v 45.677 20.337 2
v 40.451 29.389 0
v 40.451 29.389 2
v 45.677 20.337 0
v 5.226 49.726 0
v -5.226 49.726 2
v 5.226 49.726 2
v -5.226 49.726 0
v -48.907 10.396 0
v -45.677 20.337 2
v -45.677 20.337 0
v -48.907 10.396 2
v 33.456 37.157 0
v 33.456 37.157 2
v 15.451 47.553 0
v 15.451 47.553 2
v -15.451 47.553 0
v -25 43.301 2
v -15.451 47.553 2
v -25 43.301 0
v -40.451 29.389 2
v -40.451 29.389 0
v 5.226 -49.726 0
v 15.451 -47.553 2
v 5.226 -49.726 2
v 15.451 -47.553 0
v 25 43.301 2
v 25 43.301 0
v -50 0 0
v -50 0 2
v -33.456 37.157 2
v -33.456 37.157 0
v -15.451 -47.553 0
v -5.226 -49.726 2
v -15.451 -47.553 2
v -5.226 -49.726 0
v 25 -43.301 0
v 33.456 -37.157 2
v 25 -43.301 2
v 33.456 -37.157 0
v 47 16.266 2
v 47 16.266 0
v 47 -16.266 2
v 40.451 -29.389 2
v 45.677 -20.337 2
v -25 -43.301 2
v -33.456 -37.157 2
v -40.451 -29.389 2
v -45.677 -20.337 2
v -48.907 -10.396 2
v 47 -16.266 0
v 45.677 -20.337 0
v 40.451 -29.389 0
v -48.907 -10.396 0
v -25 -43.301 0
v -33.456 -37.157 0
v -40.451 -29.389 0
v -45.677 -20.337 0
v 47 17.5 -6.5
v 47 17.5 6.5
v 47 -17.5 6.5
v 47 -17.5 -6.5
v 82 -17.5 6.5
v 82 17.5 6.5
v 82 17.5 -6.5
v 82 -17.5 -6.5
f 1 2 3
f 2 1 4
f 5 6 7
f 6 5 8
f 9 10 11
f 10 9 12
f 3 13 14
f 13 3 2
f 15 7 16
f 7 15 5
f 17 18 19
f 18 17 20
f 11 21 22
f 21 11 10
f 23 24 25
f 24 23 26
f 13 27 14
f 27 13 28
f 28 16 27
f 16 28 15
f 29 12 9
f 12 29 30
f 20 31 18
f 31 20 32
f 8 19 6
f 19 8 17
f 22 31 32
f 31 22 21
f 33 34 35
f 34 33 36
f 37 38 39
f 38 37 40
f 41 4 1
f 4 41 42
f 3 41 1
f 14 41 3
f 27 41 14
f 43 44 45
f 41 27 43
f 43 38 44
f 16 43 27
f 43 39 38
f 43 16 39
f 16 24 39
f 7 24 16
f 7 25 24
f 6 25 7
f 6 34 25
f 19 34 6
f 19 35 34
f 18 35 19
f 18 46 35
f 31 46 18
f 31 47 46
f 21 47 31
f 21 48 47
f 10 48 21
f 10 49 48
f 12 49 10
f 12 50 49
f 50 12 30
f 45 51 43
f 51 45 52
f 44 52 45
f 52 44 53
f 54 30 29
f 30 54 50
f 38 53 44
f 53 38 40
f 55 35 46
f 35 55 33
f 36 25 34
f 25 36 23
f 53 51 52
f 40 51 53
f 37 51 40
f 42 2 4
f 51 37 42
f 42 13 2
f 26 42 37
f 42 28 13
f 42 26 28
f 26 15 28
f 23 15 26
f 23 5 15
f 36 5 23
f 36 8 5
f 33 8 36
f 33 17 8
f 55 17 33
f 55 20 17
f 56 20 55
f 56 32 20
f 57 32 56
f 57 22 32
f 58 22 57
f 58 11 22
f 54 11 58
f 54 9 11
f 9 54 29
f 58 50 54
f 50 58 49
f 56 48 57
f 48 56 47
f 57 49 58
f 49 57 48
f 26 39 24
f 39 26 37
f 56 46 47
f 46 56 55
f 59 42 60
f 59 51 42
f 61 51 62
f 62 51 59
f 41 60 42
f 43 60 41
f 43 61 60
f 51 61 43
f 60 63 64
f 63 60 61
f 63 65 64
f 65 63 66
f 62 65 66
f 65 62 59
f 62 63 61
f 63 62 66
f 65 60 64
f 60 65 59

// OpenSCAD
cylinder(r=50, h=2);
translate([47,-(35/2),-(13/2)])
  cube([35,35,13]);
